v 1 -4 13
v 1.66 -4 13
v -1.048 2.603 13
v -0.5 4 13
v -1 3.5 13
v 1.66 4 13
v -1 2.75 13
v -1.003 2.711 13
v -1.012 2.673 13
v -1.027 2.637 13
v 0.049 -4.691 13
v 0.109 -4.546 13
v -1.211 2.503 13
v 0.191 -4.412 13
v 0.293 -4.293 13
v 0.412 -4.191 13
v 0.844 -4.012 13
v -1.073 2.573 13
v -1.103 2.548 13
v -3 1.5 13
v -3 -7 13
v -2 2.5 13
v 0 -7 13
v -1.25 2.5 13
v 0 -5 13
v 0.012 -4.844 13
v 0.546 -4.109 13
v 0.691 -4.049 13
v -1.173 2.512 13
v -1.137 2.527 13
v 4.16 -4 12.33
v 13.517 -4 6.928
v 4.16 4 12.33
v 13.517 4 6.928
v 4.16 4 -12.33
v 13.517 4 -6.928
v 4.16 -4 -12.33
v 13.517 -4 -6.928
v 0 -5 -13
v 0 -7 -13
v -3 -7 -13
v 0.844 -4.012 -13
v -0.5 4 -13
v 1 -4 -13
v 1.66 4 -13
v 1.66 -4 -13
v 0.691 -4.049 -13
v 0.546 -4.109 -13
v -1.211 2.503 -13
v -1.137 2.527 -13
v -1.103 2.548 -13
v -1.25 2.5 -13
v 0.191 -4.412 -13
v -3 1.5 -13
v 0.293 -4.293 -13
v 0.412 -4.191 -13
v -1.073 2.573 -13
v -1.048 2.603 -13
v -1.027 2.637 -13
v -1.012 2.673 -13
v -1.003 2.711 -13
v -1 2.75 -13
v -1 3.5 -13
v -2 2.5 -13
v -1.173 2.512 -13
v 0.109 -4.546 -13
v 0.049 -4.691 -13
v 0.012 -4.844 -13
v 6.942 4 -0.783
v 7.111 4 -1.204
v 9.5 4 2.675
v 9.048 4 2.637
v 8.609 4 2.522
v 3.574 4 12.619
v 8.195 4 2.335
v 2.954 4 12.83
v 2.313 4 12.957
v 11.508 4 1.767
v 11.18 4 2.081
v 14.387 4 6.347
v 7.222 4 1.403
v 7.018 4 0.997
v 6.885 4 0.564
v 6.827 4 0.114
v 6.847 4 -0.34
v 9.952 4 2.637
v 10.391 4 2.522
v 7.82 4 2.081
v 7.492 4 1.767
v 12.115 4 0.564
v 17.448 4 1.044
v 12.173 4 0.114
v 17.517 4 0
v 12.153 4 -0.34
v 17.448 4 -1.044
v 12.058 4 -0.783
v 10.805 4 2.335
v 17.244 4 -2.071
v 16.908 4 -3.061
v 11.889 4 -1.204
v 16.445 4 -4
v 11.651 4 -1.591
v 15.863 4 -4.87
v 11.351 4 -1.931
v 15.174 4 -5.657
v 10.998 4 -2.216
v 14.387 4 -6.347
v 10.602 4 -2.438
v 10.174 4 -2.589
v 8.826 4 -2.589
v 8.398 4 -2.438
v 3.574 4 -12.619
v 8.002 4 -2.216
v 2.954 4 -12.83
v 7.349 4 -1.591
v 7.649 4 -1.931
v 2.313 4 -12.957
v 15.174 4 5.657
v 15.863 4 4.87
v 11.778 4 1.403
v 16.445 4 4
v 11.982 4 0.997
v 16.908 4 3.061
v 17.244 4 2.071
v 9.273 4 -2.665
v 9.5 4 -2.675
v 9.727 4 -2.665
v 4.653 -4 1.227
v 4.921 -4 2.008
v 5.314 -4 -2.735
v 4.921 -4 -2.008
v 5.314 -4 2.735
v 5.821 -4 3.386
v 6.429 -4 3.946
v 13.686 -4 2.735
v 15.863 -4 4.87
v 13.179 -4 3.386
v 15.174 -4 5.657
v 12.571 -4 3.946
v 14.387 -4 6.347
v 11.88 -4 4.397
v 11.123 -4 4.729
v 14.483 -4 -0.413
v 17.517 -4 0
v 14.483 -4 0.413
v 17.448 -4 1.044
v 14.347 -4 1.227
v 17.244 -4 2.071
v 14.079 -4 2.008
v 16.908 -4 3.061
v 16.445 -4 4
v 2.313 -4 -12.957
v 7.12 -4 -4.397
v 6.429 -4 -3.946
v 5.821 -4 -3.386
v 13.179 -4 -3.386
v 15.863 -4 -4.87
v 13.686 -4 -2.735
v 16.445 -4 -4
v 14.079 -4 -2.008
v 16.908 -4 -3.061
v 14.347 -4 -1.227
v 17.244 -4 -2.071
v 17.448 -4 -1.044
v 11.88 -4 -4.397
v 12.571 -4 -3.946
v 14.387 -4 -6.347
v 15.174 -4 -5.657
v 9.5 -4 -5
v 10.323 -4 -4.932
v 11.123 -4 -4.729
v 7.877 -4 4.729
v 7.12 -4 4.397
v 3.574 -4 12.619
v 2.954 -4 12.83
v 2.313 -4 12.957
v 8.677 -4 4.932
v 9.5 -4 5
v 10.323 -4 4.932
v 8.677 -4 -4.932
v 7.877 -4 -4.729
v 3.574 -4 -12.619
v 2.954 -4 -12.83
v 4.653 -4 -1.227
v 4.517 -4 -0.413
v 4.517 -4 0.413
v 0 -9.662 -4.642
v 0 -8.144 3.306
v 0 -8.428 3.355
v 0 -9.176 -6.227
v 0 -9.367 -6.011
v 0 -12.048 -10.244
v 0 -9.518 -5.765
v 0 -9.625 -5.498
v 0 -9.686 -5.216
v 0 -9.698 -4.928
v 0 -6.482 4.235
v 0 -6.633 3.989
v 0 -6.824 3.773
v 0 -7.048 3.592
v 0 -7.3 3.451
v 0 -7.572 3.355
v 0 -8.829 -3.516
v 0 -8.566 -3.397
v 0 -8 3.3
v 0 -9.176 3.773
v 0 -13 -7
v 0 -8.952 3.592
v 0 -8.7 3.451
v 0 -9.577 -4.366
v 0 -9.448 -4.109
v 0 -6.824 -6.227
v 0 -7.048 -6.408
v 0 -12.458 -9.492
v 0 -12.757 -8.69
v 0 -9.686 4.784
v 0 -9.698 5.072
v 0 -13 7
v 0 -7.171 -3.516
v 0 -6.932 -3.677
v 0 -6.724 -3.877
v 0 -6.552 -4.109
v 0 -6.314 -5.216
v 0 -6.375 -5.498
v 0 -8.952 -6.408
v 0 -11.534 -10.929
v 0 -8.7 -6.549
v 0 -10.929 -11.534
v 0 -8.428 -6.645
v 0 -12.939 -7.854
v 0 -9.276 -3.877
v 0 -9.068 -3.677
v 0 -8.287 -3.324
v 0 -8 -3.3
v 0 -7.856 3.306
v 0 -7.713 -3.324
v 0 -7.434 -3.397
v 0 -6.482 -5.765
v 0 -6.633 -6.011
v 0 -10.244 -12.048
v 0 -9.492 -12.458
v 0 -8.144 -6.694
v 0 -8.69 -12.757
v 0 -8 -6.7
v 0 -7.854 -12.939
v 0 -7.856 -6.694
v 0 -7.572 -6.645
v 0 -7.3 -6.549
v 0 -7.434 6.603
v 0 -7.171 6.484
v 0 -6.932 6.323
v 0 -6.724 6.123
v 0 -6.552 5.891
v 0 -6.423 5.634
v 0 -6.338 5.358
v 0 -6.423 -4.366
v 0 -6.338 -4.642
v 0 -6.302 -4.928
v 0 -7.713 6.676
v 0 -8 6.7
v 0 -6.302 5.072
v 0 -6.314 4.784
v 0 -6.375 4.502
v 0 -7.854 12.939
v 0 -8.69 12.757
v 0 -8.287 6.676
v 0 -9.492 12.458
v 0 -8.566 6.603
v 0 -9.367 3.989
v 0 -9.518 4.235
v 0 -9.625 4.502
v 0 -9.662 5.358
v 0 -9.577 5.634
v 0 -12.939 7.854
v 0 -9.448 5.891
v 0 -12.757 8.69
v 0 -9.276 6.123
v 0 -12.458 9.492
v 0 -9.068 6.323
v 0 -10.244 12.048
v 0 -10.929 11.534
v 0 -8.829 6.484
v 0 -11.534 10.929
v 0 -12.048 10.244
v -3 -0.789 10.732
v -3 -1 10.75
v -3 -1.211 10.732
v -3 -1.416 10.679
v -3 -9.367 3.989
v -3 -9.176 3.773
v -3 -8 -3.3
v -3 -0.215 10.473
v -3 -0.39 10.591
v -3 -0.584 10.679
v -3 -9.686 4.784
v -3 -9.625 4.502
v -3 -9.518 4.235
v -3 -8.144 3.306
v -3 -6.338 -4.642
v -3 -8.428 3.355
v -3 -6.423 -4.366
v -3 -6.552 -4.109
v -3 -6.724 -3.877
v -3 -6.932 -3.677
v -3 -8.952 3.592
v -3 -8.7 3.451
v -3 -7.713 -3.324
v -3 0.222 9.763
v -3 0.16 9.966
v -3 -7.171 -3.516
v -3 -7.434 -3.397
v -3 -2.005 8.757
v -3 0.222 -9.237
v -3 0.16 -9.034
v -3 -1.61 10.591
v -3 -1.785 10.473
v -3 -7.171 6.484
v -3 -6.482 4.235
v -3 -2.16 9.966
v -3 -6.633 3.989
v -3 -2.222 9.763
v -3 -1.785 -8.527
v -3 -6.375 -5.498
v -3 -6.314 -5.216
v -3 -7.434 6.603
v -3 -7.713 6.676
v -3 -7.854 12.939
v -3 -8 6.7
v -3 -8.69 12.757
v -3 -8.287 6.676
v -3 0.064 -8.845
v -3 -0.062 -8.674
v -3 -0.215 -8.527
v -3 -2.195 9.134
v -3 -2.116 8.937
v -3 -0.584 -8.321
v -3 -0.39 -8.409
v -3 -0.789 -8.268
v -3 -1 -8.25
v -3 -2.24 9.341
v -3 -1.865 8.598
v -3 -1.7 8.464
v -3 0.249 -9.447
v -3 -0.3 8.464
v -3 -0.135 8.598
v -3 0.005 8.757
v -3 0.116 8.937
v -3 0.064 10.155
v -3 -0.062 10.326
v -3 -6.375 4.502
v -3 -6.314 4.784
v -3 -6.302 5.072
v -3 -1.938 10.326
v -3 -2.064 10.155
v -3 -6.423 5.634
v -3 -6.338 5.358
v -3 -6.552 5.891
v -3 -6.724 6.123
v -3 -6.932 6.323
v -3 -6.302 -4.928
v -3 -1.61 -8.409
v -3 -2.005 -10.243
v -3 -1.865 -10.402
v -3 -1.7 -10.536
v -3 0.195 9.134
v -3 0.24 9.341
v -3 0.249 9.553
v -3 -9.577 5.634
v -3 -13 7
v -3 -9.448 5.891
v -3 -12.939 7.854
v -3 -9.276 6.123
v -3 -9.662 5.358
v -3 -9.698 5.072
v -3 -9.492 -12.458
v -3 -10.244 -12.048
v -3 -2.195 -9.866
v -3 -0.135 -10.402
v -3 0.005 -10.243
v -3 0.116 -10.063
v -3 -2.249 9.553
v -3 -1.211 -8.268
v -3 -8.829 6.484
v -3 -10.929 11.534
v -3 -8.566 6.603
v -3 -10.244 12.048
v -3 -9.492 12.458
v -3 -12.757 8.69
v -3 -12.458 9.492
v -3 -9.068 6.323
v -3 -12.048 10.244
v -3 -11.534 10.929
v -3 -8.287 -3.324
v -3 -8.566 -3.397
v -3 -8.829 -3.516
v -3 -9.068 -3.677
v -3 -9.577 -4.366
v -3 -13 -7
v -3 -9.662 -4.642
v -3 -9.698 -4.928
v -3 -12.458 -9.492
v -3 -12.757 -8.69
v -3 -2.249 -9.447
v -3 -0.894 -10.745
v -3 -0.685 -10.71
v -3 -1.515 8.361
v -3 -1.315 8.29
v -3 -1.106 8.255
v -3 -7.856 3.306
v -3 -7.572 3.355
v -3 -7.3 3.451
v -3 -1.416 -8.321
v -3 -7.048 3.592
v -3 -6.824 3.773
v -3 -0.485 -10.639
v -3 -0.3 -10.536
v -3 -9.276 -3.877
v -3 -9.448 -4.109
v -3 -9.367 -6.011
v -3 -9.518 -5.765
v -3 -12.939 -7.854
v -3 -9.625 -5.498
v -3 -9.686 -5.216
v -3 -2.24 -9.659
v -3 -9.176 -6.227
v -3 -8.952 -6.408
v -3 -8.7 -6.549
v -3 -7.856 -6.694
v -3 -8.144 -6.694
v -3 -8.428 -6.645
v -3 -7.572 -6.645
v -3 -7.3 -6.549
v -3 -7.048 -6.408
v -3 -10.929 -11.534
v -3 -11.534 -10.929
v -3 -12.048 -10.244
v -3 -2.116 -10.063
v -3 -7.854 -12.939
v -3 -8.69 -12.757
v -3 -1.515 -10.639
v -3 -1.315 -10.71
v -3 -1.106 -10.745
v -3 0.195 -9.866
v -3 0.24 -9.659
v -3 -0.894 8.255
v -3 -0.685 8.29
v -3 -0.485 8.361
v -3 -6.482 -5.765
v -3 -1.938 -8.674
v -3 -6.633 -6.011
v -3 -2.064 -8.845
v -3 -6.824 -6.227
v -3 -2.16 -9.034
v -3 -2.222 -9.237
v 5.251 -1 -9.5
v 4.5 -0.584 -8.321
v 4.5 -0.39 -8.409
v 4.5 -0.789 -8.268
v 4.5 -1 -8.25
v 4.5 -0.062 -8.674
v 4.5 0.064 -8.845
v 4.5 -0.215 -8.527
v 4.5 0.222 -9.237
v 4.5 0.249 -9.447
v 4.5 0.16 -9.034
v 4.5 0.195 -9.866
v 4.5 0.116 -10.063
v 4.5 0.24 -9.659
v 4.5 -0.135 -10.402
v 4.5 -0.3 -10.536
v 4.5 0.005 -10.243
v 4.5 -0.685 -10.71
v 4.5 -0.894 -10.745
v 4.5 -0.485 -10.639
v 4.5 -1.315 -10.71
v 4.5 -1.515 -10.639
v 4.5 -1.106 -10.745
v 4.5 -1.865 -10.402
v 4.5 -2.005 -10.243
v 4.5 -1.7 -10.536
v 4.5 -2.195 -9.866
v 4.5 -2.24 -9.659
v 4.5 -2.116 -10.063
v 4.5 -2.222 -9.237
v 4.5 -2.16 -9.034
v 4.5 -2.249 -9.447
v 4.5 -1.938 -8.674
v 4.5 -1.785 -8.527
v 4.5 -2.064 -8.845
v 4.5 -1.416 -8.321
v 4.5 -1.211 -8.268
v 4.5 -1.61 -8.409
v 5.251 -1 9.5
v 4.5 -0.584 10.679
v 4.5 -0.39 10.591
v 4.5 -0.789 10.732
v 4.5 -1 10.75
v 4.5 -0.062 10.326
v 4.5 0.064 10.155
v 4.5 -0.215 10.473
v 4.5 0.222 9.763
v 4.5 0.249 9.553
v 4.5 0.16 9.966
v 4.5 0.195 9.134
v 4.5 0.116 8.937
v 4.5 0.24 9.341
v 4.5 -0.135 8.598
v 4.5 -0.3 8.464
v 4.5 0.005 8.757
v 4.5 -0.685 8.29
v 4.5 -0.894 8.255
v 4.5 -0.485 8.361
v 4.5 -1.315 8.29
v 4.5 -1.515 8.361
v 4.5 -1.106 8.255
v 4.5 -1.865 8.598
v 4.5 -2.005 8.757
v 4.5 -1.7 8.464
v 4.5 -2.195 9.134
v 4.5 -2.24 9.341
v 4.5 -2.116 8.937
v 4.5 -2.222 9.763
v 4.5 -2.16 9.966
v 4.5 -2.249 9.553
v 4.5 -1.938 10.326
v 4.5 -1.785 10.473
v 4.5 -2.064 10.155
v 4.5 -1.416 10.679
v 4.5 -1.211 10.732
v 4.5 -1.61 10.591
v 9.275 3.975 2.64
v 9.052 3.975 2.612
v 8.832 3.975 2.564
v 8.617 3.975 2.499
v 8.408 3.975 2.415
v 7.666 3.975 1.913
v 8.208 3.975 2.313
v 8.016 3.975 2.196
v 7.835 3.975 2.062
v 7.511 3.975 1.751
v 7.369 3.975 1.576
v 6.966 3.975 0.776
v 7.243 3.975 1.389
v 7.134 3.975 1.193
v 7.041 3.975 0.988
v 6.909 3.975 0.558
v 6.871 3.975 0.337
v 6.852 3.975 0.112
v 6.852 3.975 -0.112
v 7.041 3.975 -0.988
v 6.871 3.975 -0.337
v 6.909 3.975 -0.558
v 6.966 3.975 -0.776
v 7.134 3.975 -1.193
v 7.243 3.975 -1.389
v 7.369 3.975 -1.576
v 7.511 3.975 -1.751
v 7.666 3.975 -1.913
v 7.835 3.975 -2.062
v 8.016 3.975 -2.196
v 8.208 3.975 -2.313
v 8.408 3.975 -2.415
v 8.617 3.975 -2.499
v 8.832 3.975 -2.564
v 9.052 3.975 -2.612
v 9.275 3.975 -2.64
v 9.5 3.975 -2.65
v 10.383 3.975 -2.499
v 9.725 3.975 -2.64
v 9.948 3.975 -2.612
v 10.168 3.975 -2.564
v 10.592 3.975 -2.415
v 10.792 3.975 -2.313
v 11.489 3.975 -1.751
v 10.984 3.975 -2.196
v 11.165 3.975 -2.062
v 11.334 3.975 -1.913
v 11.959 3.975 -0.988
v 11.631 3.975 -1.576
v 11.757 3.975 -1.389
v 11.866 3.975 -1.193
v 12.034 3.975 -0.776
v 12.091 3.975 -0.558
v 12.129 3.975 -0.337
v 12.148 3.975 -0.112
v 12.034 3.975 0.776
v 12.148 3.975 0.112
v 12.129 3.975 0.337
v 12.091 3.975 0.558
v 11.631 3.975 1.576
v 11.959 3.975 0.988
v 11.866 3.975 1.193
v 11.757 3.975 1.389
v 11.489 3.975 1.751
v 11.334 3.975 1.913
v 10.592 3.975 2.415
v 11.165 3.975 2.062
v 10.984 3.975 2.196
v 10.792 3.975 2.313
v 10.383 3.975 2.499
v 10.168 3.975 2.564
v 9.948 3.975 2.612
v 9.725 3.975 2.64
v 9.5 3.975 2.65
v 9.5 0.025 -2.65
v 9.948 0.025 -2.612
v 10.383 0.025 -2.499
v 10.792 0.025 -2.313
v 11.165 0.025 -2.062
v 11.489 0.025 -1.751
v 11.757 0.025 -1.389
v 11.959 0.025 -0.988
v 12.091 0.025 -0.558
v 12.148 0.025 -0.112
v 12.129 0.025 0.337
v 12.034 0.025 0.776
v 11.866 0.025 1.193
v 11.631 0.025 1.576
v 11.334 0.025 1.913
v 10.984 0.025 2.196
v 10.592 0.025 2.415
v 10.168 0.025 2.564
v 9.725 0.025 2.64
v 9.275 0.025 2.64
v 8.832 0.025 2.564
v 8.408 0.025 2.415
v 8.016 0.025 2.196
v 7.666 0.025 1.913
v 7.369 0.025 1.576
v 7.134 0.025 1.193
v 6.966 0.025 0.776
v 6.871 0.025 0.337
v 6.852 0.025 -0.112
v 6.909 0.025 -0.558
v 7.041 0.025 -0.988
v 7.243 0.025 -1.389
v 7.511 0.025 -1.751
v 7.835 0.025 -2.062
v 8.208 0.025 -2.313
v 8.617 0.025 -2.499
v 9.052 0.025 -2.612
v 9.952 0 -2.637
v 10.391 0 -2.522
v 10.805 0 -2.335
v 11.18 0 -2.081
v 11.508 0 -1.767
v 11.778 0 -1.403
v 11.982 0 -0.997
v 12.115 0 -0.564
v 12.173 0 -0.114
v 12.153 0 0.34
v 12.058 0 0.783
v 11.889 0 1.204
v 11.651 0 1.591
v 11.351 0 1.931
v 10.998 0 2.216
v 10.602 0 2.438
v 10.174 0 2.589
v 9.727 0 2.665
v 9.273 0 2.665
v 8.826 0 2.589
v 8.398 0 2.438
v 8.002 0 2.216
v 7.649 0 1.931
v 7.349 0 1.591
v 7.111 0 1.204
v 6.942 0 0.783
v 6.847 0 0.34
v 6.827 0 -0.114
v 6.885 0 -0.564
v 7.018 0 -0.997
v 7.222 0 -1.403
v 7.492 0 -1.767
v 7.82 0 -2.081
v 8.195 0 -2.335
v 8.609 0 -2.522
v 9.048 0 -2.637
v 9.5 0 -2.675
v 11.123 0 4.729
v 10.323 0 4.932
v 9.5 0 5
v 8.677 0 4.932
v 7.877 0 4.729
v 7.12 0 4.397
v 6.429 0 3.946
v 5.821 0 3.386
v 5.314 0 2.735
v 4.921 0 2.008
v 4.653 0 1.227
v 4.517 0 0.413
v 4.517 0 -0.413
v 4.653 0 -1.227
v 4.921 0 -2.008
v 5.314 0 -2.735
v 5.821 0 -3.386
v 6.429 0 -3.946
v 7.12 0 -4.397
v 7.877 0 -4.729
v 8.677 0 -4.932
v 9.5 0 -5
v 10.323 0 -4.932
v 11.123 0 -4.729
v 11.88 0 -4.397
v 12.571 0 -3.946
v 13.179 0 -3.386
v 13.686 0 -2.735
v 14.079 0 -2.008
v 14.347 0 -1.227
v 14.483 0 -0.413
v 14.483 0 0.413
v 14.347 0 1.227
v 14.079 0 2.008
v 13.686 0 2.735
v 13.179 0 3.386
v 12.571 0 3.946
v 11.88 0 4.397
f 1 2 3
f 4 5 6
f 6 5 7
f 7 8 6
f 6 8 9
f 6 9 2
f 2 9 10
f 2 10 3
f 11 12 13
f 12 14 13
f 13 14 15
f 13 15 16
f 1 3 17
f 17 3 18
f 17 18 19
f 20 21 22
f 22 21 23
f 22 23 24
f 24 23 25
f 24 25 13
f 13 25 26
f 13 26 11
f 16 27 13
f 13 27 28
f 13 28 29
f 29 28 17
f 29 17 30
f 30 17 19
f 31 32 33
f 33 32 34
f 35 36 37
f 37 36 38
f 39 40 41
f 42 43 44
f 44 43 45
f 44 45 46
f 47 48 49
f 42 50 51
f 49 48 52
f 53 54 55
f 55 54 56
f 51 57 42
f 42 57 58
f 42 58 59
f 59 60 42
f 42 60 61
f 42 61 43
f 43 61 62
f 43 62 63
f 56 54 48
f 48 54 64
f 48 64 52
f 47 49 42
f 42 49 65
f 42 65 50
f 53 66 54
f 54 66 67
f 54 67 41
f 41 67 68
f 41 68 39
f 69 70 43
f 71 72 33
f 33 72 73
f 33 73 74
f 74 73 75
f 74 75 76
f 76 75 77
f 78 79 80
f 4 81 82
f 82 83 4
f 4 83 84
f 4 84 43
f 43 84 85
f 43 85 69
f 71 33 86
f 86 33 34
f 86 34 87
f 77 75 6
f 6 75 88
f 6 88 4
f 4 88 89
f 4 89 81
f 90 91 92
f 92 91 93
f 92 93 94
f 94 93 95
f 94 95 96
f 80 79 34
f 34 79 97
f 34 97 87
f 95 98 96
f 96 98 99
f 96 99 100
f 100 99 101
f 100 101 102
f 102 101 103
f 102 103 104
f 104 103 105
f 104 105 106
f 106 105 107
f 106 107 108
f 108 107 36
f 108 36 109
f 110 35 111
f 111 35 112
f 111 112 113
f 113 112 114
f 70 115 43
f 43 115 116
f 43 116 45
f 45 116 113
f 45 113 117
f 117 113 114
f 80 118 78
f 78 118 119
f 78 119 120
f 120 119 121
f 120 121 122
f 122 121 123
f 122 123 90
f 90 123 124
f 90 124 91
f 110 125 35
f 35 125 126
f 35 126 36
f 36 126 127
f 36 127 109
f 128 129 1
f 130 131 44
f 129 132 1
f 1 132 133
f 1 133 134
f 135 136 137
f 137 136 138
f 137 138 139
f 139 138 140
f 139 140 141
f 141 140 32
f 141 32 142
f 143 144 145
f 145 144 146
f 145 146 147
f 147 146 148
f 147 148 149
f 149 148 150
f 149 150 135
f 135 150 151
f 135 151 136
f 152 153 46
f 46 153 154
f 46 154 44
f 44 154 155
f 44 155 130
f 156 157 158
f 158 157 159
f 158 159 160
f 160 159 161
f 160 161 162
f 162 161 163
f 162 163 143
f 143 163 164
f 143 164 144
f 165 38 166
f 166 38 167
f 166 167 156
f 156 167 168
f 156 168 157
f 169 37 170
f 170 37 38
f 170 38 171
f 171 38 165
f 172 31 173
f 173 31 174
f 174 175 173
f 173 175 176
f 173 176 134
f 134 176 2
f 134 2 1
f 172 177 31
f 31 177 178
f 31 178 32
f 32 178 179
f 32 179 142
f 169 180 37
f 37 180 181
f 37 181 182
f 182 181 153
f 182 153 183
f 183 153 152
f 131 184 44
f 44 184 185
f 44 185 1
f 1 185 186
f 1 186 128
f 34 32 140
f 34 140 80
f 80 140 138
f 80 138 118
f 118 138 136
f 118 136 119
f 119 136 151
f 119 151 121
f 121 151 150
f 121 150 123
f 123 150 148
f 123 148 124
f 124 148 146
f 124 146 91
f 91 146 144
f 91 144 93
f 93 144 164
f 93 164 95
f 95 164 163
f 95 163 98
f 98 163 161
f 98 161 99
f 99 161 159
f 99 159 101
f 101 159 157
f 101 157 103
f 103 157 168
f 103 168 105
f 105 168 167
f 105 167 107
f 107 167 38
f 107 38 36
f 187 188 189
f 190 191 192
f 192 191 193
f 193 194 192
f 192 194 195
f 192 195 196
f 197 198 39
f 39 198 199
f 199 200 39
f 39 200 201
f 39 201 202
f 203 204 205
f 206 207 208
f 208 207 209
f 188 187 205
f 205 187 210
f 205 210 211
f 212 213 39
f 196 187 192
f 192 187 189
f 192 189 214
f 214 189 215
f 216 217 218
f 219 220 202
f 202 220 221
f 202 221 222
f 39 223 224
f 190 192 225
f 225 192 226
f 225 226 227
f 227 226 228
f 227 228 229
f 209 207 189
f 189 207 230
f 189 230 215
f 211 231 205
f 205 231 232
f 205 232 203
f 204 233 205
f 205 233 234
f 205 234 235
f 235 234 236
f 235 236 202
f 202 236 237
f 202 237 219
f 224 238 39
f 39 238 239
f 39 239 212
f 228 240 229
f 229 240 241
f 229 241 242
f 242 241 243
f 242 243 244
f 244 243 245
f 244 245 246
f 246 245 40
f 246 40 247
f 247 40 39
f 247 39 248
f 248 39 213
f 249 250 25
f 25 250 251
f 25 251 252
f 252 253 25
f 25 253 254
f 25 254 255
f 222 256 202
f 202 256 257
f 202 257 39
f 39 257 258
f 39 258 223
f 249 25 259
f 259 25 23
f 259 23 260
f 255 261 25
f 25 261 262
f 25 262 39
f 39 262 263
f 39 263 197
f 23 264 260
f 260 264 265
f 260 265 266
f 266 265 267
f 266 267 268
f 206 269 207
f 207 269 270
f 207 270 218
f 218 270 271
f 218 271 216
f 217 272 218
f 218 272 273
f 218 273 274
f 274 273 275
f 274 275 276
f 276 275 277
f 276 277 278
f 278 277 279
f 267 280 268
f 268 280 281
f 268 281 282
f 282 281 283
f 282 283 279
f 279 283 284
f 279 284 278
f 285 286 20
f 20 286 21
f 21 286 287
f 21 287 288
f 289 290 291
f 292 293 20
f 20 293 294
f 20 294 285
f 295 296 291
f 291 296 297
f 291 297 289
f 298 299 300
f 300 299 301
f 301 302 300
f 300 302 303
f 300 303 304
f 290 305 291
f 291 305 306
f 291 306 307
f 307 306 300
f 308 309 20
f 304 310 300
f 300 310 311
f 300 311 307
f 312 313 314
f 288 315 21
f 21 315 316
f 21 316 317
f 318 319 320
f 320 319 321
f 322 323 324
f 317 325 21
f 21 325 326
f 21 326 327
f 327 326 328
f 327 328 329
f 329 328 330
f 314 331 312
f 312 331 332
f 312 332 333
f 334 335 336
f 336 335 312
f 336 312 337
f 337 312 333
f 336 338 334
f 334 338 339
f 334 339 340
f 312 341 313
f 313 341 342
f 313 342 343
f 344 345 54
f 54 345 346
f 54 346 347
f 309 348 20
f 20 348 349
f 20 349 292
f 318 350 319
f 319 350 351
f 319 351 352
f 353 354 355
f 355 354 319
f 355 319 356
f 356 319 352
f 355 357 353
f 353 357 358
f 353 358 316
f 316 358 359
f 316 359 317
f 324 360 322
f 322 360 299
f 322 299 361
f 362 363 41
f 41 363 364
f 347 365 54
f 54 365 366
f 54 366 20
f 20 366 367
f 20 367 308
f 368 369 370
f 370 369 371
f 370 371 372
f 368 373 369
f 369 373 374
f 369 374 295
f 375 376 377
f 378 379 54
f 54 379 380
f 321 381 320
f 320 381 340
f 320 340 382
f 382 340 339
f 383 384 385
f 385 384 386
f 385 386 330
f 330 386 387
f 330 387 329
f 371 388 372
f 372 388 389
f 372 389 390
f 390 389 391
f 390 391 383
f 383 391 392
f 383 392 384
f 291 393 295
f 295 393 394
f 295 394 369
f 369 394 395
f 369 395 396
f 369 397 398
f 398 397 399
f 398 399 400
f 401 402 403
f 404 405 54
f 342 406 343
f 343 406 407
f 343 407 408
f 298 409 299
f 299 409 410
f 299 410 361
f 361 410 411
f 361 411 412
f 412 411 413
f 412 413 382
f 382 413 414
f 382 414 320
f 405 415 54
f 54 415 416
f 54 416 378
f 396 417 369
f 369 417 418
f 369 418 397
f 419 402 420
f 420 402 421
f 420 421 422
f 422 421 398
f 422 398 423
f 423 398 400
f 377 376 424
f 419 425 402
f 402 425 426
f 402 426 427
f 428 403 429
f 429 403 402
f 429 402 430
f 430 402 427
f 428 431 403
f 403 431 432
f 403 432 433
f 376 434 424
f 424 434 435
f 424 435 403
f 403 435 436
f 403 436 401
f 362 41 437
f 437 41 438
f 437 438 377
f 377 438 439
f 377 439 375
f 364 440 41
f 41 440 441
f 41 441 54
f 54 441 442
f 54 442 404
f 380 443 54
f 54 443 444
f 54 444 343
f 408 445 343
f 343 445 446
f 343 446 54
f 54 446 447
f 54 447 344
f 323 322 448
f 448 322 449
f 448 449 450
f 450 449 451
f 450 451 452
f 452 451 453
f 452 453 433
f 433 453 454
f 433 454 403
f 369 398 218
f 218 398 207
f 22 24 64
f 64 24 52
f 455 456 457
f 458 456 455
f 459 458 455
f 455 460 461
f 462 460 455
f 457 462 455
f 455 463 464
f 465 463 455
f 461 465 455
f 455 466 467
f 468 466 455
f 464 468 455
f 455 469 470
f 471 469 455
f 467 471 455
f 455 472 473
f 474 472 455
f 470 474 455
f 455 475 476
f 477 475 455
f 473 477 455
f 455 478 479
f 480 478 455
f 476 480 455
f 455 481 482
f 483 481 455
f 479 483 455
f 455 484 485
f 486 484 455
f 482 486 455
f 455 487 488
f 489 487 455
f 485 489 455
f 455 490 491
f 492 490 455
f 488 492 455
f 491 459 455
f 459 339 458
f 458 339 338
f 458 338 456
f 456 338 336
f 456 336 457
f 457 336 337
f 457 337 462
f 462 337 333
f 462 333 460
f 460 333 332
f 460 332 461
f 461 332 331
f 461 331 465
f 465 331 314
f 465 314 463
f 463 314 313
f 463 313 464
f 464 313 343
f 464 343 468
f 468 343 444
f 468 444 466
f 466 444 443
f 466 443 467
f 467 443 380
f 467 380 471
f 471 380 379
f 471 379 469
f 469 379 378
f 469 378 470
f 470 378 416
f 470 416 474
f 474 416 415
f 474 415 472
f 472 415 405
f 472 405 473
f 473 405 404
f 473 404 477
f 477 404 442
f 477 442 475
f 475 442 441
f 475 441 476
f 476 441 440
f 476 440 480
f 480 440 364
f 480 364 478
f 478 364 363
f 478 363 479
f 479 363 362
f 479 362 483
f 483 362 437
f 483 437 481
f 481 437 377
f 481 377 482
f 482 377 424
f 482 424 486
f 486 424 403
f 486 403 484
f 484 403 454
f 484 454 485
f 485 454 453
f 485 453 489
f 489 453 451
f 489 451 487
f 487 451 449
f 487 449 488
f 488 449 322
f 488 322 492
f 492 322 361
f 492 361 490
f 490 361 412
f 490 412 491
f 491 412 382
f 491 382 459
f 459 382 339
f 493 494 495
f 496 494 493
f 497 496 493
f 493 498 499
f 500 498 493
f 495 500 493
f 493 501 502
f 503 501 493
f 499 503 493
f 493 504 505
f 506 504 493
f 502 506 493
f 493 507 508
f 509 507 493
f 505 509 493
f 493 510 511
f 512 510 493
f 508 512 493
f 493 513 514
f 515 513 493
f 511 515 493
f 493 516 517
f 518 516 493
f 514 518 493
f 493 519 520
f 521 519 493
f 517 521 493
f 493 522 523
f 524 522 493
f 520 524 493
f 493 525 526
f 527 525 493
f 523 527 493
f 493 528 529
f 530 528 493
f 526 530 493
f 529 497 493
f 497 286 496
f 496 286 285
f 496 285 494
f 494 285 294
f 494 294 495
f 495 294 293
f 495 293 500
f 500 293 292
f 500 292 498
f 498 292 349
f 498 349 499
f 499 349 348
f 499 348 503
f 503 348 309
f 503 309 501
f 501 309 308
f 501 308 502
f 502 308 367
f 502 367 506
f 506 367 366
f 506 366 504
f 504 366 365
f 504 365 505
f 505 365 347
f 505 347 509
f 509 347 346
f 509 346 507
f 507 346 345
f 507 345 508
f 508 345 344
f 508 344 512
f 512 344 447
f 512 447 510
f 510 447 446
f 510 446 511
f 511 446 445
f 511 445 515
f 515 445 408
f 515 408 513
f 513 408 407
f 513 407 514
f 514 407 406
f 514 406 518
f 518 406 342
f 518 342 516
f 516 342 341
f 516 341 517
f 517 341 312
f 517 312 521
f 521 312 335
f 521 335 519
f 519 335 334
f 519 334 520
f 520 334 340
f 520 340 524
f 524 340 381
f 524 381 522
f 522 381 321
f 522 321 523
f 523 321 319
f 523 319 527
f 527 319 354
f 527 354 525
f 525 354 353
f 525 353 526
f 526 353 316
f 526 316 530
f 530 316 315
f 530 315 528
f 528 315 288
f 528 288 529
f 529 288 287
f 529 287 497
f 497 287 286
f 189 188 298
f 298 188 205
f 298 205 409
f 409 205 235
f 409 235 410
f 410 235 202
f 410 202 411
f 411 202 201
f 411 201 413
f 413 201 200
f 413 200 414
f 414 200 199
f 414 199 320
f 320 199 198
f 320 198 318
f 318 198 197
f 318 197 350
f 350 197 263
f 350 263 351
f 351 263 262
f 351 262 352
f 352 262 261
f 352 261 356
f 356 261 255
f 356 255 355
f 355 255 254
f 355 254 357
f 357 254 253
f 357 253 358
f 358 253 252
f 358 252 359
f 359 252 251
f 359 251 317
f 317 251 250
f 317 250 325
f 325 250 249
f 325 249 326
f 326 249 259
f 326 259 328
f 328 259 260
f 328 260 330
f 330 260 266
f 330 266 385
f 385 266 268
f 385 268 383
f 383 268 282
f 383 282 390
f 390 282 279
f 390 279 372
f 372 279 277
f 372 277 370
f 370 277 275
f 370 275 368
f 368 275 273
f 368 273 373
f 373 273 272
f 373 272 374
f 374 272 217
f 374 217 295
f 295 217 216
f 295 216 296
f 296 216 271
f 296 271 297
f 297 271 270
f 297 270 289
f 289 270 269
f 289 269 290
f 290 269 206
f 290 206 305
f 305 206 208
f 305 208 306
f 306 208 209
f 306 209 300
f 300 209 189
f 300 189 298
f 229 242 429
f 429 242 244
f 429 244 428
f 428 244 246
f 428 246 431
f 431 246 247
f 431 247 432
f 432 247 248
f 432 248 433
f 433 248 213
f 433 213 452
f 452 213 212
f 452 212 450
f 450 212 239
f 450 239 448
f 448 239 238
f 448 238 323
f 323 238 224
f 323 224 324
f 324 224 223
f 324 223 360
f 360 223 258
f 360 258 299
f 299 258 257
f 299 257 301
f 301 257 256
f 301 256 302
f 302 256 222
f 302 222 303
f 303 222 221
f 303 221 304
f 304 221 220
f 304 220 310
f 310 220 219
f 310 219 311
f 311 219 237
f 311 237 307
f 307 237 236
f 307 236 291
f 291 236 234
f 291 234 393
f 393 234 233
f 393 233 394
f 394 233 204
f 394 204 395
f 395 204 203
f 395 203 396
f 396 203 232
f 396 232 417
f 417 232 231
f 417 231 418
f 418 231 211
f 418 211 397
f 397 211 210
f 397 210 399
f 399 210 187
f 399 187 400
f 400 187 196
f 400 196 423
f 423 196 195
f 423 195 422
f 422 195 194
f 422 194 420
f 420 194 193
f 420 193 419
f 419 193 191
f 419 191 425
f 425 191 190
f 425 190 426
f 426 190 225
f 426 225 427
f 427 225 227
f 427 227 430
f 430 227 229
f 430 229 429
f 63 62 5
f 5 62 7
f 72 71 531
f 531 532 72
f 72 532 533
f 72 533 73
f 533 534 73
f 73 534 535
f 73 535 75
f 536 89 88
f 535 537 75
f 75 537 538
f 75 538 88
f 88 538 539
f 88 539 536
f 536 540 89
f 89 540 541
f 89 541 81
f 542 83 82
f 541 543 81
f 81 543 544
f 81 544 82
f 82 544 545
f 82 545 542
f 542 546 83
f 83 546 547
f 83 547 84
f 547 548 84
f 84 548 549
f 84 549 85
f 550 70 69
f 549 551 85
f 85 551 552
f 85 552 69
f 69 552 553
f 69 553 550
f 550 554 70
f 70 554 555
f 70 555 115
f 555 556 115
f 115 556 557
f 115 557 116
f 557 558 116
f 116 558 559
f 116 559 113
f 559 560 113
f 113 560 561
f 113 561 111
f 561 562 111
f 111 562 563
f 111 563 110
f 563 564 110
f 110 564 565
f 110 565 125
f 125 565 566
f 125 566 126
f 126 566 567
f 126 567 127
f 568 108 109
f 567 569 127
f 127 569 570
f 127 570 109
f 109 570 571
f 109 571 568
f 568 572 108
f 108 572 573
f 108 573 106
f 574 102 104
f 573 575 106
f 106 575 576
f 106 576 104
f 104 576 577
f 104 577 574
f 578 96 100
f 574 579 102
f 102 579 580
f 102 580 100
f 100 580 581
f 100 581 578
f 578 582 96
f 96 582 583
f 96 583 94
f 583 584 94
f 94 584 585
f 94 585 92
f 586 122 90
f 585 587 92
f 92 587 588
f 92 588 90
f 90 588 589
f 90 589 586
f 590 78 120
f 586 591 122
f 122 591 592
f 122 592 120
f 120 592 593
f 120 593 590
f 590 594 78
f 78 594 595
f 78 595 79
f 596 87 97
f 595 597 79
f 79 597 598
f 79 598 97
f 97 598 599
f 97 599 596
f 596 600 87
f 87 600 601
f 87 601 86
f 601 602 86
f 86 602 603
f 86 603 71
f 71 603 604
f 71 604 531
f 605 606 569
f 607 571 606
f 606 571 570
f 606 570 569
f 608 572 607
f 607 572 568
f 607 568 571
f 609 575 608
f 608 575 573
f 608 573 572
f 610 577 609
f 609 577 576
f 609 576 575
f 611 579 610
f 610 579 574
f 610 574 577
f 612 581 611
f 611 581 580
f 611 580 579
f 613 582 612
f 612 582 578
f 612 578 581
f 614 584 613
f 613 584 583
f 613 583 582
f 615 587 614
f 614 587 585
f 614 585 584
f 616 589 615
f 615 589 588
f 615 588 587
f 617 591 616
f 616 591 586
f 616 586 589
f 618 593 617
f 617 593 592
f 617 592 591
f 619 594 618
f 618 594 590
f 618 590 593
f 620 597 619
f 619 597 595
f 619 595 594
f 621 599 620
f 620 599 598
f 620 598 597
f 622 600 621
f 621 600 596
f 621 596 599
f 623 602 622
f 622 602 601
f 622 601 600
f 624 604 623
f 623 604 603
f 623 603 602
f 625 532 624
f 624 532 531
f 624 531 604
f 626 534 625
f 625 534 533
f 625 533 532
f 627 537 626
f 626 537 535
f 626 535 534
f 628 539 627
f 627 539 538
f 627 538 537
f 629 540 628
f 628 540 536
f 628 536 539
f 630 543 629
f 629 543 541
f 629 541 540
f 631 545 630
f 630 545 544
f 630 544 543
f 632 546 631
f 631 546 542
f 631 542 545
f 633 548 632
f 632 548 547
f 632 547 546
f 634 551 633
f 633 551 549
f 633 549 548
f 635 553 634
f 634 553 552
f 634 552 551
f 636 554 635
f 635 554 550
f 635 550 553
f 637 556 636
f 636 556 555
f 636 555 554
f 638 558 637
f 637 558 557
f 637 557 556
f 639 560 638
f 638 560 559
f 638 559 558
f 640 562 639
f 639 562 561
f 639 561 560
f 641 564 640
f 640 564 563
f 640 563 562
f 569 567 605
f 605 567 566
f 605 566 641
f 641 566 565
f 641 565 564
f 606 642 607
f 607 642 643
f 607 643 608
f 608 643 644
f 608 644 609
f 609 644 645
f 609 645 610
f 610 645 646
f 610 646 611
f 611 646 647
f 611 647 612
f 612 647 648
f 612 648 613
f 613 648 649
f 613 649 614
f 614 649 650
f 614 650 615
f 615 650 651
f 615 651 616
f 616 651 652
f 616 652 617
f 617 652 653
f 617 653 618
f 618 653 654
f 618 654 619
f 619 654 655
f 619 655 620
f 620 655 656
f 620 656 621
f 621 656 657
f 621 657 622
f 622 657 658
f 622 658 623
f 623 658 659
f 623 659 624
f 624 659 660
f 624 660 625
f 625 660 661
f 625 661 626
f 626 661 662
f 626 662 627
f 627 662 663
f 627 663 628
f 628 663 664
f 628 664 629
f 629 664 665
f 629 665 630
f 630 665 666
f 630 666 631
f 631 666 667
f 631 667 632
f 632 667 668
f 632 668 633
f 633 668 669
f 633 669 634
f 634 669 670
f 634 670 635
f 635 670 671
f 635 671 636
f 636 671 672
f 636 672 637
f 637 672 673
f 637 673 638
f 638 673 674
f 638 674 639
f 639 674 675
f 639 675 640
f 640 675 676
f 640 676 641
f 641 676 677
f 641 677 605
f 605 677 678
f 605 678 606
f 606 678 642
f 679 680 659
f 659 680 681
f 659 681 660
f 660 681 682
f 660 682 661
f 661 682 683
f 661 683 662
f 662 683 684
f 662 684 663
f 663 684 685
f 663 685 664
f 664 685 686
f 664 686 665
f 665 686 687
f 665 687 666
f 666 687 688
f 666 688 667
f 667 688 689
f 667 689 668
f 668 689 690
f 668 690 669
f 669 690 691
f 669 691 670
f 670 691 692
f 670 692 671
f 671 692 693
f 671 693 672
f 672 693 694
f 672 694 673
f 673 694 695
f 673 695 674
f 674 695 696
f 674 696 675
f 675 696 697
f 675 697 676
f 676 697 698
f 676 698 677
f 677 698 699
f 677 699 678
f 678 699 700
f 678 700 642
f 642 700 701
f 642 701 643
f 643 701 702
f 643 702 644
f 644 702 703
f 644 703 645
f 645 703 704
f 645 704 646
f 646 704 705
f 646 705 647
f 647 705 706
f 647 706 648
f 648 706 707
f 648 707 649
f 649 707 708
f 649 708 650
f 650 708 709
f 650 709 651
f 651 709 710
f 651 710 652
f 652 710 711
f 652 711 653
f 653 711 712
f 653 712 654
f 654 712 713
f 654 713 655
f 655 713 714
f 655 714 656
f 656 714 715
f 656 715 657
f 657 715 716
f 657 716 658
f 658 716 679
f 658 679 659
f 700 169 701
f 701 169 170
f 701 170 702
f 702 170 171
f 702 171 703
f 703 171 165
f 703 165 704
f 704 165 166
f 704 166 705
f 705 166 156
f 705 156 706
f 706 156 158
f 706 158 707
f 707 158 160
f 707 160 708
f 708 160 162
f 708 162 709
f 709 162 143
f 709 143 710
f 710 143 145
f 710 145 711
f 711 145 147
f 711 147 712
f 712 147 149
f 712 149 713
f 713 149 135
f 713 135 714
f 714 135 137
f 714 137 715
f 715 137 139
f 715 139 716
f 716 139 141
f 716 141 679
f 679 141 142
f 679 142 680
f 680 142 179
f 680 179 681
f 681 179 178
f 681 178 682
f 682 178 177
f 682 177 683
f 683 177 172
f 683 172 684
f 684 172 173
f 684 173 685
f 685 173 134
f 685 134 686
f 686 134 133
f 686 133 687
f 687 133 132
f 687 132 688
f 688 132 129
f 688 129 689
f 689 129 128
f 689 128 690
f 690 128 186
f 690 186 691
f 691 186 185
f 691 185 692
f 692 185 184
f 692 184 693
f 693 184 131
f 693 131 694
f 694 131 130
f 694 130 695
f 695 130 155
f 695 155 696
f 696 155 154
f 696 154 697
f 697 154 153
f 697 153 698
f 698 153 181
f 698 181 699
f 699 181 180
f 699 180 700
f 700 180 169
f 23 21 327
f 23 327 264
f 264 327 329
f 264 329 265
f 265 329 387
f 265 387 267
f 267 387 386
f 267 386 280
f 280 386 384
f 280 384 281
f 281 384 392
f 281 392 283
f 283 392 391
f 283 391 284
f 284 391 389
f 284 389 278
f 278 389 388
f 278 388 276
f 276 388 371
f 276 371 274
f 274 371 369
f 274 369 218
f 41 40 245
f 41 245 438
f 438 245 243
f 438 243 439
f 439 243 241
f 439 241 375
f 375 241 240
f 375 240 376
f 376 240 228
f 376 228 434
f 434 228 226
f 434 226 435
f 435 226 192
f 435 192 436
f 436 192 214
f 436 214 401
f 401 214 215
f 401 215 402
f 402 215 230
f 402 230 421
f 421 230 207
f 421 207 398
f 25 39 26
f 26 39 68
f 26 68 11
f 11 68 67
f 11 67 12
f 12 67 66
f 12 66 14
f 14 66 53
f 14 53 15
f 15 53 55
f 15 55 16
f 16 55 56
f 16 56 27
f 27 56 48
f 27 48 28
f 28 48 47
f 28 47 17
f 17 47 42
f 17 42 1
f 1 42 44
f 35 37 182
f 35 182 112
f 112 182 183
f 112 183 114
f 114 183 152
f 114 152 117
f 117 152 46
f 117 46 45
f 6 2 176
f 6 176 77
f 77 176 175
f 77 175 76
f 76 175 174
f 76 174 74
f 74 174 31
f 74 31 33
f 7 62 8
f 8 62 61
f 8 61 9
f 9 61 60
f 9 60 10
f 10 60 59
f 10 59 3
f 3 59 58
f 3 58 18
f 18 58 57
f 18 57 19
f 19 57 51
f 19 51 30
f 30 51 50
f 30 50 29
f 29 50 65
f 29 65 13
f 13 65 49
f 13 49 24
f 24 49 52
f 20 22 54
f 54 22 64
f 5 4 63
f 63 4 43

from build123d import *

# Parameters (mm, degrees)
BOSS_EXTRUDE1_DEPTH       = 4
FILLET1_R                 = 8
SKETCH7_W                 = 3
SKETCH7_H                 = 26
BOSS_EXTRUDE3_DEPTH       = 15.5
M3X0_5_TAPPED_HOLE1_D     = 2.5
M3X0_5_TAPPED_HOLE1_DEPTH = 7.5
M3X0_5_TAPPED_HOLE1_TIP   = 0.751075774
M3_CLEARANCE_HOLE2_D      = 3.4
SKETCH12_W                = 1
SKETCH12_H                = 26
BOSS_EXTRUDE4_DEPTH       = 2
FILLET4_R                 = 6
FILLET5_R                 = 1
FILLET6_R                 = 5
FILLET7_R                 = 0.25
CHAMFER1_SIZE             = 1
CHAMFER2_SIZE             = 0.5


with BuildPart() as part:
    # Sketch1 → Boss-Extrude1 (new, symmetric)
    with BuildSketch(Plane(origin=(0, 0, 0), x_dir=(1, 0, 0), z_dir=(0, 1, 0))):
        Polygon((0, 0), (0, 13), (3, 13), (25.516660498, 0), (3, -13), (0, -13), align=None)
    extrude(amount=BOSS_EXTRUDE1_DEPTH, both=True)

    # Fillet1
    fillet1_edges = [part.edges().sort_by_distance(p)[0] for p in [
        (25.516660498, 0, 0),
    ]]
    fillet(fillet1_edges, radius=FILLET1_R)

    # Sketch7 → Boss-Extrude3 (add)
    with BuildSketch(Plane(origin=(0, 2.5, 0), x_dir=(1, 0, 0), z_dir=(0, 1, 0))):
        with Locations((-1.5, 0)):
            Rectangle(SKETCH7_W, SKETCH7_H)
    extrude(amount=-BOSS_EXTRUDE3_DEPTH)

    # M3x0.5 Tapped Hole1
    with Locations(Plane.ZY.offset(3)):
        with Locations((9.5, -1), (-9.5, -1)):
            Hole(M3X0_5_TAPPED_HOLE1_D / 2, depth=M3X0_5_TAPPED_HOLE1_DEPTH)
            with Locations((0, 0, -(M3X0_5_TAPPED_HOLE1_DEPTH + M3X0_5_TAPPED_HOLE1_TIP / 2))):  # 118° drill point
                Cone(0, M3X0_5_TAPPED_HOLE1_D / 2, M3X0_5_TAPPED_HOLE1_TIP, mode=Mode.SUBTRACT)

    # M3 Clearance Hole2 (through all)
    with Locations(Plane.ZY.offset(3)):
        with Locations((-5, -8), (5, -8)):
            Hole(M3_CLEARANCE_HOLE2_D / 2)

    # Sketch12 → Boss-Extrude4 (add)
    with BuildSketch(Plane(origin=(0, 4, 0), x_dir=(1, 0, 0), z_dir=(0, 1, 0))):
        with Locations((-0.5, 0)):
            Rectangle(SKETCH12_W, SKETCH12_H)
    extrude(amount=-BOSS_EXTRUDE4_DEPTH)

    # Sketch20 → CBORE for M5 SHCS1 (revolve, cut)
    with BuildSketch(Plane(origin=(9.5, -4, 0), x_dir=(0, 0, -1), z_dir=(1, 0, 0))):
        Polygon((0, 0), (0, 8), (2.675, 8), (2.65, 7.975), (2.65, 4.025), (2.675, 4), (5, 4), (5, 0), align=None)
    revolve(axis=Axis((9.5, -10.35, 0), (0, 1, 0)), mode=Mode.SUBTRACT)

    # Fillet4
    fillet4_edges = [part.edges().sort_by_distance(p)[0] for p in [
        (-1.5, -13, 13),
        (-1.5, -13, -13),
    ]]
    fillet(fillet4_edges, radius=FILLET4_R)

    # Fillet5
    fillet5_edges = [part.edges().sort_by_distance(p)[0] for p in [
        (0, -4, 0),
    ]]
    fillet(fillet5_edges, radius=FILLET5_R)

    # Fillet6
    fillet6_edges = [part.edges().sort_by_distance(p)[0] for p in [
        (3, 0, -13),
        (3, 0, 13),
    ]]
    fillet(fillet6_edges, radius=FILLET6_R)

    # Fillet7
    fillet7_edges = [part.edges().sort_by_distance(p)[0] for p in [
        (-1, 2.5, 0),
    ]]
    fillet(fillet7_edges, radius=FILLET7_R)

    # Chamfer1
    chamfer1_edges = [part.edges().sort_by_distance(p)[0] for p in [
        (-3, 2.5, 0),
    ]]
    chamfer(chamfer1_edges, length=CHAMFER1_SIZE)

    # Chamfer2
    chamfer2_edges = [part.edges().sort_by_distance(p)[0] for p in [
        (-1, 4, 0),
    ]]
    chamfer(chamfer2_edges, length=CHAMFER2_SIZE)


solid = part.part
